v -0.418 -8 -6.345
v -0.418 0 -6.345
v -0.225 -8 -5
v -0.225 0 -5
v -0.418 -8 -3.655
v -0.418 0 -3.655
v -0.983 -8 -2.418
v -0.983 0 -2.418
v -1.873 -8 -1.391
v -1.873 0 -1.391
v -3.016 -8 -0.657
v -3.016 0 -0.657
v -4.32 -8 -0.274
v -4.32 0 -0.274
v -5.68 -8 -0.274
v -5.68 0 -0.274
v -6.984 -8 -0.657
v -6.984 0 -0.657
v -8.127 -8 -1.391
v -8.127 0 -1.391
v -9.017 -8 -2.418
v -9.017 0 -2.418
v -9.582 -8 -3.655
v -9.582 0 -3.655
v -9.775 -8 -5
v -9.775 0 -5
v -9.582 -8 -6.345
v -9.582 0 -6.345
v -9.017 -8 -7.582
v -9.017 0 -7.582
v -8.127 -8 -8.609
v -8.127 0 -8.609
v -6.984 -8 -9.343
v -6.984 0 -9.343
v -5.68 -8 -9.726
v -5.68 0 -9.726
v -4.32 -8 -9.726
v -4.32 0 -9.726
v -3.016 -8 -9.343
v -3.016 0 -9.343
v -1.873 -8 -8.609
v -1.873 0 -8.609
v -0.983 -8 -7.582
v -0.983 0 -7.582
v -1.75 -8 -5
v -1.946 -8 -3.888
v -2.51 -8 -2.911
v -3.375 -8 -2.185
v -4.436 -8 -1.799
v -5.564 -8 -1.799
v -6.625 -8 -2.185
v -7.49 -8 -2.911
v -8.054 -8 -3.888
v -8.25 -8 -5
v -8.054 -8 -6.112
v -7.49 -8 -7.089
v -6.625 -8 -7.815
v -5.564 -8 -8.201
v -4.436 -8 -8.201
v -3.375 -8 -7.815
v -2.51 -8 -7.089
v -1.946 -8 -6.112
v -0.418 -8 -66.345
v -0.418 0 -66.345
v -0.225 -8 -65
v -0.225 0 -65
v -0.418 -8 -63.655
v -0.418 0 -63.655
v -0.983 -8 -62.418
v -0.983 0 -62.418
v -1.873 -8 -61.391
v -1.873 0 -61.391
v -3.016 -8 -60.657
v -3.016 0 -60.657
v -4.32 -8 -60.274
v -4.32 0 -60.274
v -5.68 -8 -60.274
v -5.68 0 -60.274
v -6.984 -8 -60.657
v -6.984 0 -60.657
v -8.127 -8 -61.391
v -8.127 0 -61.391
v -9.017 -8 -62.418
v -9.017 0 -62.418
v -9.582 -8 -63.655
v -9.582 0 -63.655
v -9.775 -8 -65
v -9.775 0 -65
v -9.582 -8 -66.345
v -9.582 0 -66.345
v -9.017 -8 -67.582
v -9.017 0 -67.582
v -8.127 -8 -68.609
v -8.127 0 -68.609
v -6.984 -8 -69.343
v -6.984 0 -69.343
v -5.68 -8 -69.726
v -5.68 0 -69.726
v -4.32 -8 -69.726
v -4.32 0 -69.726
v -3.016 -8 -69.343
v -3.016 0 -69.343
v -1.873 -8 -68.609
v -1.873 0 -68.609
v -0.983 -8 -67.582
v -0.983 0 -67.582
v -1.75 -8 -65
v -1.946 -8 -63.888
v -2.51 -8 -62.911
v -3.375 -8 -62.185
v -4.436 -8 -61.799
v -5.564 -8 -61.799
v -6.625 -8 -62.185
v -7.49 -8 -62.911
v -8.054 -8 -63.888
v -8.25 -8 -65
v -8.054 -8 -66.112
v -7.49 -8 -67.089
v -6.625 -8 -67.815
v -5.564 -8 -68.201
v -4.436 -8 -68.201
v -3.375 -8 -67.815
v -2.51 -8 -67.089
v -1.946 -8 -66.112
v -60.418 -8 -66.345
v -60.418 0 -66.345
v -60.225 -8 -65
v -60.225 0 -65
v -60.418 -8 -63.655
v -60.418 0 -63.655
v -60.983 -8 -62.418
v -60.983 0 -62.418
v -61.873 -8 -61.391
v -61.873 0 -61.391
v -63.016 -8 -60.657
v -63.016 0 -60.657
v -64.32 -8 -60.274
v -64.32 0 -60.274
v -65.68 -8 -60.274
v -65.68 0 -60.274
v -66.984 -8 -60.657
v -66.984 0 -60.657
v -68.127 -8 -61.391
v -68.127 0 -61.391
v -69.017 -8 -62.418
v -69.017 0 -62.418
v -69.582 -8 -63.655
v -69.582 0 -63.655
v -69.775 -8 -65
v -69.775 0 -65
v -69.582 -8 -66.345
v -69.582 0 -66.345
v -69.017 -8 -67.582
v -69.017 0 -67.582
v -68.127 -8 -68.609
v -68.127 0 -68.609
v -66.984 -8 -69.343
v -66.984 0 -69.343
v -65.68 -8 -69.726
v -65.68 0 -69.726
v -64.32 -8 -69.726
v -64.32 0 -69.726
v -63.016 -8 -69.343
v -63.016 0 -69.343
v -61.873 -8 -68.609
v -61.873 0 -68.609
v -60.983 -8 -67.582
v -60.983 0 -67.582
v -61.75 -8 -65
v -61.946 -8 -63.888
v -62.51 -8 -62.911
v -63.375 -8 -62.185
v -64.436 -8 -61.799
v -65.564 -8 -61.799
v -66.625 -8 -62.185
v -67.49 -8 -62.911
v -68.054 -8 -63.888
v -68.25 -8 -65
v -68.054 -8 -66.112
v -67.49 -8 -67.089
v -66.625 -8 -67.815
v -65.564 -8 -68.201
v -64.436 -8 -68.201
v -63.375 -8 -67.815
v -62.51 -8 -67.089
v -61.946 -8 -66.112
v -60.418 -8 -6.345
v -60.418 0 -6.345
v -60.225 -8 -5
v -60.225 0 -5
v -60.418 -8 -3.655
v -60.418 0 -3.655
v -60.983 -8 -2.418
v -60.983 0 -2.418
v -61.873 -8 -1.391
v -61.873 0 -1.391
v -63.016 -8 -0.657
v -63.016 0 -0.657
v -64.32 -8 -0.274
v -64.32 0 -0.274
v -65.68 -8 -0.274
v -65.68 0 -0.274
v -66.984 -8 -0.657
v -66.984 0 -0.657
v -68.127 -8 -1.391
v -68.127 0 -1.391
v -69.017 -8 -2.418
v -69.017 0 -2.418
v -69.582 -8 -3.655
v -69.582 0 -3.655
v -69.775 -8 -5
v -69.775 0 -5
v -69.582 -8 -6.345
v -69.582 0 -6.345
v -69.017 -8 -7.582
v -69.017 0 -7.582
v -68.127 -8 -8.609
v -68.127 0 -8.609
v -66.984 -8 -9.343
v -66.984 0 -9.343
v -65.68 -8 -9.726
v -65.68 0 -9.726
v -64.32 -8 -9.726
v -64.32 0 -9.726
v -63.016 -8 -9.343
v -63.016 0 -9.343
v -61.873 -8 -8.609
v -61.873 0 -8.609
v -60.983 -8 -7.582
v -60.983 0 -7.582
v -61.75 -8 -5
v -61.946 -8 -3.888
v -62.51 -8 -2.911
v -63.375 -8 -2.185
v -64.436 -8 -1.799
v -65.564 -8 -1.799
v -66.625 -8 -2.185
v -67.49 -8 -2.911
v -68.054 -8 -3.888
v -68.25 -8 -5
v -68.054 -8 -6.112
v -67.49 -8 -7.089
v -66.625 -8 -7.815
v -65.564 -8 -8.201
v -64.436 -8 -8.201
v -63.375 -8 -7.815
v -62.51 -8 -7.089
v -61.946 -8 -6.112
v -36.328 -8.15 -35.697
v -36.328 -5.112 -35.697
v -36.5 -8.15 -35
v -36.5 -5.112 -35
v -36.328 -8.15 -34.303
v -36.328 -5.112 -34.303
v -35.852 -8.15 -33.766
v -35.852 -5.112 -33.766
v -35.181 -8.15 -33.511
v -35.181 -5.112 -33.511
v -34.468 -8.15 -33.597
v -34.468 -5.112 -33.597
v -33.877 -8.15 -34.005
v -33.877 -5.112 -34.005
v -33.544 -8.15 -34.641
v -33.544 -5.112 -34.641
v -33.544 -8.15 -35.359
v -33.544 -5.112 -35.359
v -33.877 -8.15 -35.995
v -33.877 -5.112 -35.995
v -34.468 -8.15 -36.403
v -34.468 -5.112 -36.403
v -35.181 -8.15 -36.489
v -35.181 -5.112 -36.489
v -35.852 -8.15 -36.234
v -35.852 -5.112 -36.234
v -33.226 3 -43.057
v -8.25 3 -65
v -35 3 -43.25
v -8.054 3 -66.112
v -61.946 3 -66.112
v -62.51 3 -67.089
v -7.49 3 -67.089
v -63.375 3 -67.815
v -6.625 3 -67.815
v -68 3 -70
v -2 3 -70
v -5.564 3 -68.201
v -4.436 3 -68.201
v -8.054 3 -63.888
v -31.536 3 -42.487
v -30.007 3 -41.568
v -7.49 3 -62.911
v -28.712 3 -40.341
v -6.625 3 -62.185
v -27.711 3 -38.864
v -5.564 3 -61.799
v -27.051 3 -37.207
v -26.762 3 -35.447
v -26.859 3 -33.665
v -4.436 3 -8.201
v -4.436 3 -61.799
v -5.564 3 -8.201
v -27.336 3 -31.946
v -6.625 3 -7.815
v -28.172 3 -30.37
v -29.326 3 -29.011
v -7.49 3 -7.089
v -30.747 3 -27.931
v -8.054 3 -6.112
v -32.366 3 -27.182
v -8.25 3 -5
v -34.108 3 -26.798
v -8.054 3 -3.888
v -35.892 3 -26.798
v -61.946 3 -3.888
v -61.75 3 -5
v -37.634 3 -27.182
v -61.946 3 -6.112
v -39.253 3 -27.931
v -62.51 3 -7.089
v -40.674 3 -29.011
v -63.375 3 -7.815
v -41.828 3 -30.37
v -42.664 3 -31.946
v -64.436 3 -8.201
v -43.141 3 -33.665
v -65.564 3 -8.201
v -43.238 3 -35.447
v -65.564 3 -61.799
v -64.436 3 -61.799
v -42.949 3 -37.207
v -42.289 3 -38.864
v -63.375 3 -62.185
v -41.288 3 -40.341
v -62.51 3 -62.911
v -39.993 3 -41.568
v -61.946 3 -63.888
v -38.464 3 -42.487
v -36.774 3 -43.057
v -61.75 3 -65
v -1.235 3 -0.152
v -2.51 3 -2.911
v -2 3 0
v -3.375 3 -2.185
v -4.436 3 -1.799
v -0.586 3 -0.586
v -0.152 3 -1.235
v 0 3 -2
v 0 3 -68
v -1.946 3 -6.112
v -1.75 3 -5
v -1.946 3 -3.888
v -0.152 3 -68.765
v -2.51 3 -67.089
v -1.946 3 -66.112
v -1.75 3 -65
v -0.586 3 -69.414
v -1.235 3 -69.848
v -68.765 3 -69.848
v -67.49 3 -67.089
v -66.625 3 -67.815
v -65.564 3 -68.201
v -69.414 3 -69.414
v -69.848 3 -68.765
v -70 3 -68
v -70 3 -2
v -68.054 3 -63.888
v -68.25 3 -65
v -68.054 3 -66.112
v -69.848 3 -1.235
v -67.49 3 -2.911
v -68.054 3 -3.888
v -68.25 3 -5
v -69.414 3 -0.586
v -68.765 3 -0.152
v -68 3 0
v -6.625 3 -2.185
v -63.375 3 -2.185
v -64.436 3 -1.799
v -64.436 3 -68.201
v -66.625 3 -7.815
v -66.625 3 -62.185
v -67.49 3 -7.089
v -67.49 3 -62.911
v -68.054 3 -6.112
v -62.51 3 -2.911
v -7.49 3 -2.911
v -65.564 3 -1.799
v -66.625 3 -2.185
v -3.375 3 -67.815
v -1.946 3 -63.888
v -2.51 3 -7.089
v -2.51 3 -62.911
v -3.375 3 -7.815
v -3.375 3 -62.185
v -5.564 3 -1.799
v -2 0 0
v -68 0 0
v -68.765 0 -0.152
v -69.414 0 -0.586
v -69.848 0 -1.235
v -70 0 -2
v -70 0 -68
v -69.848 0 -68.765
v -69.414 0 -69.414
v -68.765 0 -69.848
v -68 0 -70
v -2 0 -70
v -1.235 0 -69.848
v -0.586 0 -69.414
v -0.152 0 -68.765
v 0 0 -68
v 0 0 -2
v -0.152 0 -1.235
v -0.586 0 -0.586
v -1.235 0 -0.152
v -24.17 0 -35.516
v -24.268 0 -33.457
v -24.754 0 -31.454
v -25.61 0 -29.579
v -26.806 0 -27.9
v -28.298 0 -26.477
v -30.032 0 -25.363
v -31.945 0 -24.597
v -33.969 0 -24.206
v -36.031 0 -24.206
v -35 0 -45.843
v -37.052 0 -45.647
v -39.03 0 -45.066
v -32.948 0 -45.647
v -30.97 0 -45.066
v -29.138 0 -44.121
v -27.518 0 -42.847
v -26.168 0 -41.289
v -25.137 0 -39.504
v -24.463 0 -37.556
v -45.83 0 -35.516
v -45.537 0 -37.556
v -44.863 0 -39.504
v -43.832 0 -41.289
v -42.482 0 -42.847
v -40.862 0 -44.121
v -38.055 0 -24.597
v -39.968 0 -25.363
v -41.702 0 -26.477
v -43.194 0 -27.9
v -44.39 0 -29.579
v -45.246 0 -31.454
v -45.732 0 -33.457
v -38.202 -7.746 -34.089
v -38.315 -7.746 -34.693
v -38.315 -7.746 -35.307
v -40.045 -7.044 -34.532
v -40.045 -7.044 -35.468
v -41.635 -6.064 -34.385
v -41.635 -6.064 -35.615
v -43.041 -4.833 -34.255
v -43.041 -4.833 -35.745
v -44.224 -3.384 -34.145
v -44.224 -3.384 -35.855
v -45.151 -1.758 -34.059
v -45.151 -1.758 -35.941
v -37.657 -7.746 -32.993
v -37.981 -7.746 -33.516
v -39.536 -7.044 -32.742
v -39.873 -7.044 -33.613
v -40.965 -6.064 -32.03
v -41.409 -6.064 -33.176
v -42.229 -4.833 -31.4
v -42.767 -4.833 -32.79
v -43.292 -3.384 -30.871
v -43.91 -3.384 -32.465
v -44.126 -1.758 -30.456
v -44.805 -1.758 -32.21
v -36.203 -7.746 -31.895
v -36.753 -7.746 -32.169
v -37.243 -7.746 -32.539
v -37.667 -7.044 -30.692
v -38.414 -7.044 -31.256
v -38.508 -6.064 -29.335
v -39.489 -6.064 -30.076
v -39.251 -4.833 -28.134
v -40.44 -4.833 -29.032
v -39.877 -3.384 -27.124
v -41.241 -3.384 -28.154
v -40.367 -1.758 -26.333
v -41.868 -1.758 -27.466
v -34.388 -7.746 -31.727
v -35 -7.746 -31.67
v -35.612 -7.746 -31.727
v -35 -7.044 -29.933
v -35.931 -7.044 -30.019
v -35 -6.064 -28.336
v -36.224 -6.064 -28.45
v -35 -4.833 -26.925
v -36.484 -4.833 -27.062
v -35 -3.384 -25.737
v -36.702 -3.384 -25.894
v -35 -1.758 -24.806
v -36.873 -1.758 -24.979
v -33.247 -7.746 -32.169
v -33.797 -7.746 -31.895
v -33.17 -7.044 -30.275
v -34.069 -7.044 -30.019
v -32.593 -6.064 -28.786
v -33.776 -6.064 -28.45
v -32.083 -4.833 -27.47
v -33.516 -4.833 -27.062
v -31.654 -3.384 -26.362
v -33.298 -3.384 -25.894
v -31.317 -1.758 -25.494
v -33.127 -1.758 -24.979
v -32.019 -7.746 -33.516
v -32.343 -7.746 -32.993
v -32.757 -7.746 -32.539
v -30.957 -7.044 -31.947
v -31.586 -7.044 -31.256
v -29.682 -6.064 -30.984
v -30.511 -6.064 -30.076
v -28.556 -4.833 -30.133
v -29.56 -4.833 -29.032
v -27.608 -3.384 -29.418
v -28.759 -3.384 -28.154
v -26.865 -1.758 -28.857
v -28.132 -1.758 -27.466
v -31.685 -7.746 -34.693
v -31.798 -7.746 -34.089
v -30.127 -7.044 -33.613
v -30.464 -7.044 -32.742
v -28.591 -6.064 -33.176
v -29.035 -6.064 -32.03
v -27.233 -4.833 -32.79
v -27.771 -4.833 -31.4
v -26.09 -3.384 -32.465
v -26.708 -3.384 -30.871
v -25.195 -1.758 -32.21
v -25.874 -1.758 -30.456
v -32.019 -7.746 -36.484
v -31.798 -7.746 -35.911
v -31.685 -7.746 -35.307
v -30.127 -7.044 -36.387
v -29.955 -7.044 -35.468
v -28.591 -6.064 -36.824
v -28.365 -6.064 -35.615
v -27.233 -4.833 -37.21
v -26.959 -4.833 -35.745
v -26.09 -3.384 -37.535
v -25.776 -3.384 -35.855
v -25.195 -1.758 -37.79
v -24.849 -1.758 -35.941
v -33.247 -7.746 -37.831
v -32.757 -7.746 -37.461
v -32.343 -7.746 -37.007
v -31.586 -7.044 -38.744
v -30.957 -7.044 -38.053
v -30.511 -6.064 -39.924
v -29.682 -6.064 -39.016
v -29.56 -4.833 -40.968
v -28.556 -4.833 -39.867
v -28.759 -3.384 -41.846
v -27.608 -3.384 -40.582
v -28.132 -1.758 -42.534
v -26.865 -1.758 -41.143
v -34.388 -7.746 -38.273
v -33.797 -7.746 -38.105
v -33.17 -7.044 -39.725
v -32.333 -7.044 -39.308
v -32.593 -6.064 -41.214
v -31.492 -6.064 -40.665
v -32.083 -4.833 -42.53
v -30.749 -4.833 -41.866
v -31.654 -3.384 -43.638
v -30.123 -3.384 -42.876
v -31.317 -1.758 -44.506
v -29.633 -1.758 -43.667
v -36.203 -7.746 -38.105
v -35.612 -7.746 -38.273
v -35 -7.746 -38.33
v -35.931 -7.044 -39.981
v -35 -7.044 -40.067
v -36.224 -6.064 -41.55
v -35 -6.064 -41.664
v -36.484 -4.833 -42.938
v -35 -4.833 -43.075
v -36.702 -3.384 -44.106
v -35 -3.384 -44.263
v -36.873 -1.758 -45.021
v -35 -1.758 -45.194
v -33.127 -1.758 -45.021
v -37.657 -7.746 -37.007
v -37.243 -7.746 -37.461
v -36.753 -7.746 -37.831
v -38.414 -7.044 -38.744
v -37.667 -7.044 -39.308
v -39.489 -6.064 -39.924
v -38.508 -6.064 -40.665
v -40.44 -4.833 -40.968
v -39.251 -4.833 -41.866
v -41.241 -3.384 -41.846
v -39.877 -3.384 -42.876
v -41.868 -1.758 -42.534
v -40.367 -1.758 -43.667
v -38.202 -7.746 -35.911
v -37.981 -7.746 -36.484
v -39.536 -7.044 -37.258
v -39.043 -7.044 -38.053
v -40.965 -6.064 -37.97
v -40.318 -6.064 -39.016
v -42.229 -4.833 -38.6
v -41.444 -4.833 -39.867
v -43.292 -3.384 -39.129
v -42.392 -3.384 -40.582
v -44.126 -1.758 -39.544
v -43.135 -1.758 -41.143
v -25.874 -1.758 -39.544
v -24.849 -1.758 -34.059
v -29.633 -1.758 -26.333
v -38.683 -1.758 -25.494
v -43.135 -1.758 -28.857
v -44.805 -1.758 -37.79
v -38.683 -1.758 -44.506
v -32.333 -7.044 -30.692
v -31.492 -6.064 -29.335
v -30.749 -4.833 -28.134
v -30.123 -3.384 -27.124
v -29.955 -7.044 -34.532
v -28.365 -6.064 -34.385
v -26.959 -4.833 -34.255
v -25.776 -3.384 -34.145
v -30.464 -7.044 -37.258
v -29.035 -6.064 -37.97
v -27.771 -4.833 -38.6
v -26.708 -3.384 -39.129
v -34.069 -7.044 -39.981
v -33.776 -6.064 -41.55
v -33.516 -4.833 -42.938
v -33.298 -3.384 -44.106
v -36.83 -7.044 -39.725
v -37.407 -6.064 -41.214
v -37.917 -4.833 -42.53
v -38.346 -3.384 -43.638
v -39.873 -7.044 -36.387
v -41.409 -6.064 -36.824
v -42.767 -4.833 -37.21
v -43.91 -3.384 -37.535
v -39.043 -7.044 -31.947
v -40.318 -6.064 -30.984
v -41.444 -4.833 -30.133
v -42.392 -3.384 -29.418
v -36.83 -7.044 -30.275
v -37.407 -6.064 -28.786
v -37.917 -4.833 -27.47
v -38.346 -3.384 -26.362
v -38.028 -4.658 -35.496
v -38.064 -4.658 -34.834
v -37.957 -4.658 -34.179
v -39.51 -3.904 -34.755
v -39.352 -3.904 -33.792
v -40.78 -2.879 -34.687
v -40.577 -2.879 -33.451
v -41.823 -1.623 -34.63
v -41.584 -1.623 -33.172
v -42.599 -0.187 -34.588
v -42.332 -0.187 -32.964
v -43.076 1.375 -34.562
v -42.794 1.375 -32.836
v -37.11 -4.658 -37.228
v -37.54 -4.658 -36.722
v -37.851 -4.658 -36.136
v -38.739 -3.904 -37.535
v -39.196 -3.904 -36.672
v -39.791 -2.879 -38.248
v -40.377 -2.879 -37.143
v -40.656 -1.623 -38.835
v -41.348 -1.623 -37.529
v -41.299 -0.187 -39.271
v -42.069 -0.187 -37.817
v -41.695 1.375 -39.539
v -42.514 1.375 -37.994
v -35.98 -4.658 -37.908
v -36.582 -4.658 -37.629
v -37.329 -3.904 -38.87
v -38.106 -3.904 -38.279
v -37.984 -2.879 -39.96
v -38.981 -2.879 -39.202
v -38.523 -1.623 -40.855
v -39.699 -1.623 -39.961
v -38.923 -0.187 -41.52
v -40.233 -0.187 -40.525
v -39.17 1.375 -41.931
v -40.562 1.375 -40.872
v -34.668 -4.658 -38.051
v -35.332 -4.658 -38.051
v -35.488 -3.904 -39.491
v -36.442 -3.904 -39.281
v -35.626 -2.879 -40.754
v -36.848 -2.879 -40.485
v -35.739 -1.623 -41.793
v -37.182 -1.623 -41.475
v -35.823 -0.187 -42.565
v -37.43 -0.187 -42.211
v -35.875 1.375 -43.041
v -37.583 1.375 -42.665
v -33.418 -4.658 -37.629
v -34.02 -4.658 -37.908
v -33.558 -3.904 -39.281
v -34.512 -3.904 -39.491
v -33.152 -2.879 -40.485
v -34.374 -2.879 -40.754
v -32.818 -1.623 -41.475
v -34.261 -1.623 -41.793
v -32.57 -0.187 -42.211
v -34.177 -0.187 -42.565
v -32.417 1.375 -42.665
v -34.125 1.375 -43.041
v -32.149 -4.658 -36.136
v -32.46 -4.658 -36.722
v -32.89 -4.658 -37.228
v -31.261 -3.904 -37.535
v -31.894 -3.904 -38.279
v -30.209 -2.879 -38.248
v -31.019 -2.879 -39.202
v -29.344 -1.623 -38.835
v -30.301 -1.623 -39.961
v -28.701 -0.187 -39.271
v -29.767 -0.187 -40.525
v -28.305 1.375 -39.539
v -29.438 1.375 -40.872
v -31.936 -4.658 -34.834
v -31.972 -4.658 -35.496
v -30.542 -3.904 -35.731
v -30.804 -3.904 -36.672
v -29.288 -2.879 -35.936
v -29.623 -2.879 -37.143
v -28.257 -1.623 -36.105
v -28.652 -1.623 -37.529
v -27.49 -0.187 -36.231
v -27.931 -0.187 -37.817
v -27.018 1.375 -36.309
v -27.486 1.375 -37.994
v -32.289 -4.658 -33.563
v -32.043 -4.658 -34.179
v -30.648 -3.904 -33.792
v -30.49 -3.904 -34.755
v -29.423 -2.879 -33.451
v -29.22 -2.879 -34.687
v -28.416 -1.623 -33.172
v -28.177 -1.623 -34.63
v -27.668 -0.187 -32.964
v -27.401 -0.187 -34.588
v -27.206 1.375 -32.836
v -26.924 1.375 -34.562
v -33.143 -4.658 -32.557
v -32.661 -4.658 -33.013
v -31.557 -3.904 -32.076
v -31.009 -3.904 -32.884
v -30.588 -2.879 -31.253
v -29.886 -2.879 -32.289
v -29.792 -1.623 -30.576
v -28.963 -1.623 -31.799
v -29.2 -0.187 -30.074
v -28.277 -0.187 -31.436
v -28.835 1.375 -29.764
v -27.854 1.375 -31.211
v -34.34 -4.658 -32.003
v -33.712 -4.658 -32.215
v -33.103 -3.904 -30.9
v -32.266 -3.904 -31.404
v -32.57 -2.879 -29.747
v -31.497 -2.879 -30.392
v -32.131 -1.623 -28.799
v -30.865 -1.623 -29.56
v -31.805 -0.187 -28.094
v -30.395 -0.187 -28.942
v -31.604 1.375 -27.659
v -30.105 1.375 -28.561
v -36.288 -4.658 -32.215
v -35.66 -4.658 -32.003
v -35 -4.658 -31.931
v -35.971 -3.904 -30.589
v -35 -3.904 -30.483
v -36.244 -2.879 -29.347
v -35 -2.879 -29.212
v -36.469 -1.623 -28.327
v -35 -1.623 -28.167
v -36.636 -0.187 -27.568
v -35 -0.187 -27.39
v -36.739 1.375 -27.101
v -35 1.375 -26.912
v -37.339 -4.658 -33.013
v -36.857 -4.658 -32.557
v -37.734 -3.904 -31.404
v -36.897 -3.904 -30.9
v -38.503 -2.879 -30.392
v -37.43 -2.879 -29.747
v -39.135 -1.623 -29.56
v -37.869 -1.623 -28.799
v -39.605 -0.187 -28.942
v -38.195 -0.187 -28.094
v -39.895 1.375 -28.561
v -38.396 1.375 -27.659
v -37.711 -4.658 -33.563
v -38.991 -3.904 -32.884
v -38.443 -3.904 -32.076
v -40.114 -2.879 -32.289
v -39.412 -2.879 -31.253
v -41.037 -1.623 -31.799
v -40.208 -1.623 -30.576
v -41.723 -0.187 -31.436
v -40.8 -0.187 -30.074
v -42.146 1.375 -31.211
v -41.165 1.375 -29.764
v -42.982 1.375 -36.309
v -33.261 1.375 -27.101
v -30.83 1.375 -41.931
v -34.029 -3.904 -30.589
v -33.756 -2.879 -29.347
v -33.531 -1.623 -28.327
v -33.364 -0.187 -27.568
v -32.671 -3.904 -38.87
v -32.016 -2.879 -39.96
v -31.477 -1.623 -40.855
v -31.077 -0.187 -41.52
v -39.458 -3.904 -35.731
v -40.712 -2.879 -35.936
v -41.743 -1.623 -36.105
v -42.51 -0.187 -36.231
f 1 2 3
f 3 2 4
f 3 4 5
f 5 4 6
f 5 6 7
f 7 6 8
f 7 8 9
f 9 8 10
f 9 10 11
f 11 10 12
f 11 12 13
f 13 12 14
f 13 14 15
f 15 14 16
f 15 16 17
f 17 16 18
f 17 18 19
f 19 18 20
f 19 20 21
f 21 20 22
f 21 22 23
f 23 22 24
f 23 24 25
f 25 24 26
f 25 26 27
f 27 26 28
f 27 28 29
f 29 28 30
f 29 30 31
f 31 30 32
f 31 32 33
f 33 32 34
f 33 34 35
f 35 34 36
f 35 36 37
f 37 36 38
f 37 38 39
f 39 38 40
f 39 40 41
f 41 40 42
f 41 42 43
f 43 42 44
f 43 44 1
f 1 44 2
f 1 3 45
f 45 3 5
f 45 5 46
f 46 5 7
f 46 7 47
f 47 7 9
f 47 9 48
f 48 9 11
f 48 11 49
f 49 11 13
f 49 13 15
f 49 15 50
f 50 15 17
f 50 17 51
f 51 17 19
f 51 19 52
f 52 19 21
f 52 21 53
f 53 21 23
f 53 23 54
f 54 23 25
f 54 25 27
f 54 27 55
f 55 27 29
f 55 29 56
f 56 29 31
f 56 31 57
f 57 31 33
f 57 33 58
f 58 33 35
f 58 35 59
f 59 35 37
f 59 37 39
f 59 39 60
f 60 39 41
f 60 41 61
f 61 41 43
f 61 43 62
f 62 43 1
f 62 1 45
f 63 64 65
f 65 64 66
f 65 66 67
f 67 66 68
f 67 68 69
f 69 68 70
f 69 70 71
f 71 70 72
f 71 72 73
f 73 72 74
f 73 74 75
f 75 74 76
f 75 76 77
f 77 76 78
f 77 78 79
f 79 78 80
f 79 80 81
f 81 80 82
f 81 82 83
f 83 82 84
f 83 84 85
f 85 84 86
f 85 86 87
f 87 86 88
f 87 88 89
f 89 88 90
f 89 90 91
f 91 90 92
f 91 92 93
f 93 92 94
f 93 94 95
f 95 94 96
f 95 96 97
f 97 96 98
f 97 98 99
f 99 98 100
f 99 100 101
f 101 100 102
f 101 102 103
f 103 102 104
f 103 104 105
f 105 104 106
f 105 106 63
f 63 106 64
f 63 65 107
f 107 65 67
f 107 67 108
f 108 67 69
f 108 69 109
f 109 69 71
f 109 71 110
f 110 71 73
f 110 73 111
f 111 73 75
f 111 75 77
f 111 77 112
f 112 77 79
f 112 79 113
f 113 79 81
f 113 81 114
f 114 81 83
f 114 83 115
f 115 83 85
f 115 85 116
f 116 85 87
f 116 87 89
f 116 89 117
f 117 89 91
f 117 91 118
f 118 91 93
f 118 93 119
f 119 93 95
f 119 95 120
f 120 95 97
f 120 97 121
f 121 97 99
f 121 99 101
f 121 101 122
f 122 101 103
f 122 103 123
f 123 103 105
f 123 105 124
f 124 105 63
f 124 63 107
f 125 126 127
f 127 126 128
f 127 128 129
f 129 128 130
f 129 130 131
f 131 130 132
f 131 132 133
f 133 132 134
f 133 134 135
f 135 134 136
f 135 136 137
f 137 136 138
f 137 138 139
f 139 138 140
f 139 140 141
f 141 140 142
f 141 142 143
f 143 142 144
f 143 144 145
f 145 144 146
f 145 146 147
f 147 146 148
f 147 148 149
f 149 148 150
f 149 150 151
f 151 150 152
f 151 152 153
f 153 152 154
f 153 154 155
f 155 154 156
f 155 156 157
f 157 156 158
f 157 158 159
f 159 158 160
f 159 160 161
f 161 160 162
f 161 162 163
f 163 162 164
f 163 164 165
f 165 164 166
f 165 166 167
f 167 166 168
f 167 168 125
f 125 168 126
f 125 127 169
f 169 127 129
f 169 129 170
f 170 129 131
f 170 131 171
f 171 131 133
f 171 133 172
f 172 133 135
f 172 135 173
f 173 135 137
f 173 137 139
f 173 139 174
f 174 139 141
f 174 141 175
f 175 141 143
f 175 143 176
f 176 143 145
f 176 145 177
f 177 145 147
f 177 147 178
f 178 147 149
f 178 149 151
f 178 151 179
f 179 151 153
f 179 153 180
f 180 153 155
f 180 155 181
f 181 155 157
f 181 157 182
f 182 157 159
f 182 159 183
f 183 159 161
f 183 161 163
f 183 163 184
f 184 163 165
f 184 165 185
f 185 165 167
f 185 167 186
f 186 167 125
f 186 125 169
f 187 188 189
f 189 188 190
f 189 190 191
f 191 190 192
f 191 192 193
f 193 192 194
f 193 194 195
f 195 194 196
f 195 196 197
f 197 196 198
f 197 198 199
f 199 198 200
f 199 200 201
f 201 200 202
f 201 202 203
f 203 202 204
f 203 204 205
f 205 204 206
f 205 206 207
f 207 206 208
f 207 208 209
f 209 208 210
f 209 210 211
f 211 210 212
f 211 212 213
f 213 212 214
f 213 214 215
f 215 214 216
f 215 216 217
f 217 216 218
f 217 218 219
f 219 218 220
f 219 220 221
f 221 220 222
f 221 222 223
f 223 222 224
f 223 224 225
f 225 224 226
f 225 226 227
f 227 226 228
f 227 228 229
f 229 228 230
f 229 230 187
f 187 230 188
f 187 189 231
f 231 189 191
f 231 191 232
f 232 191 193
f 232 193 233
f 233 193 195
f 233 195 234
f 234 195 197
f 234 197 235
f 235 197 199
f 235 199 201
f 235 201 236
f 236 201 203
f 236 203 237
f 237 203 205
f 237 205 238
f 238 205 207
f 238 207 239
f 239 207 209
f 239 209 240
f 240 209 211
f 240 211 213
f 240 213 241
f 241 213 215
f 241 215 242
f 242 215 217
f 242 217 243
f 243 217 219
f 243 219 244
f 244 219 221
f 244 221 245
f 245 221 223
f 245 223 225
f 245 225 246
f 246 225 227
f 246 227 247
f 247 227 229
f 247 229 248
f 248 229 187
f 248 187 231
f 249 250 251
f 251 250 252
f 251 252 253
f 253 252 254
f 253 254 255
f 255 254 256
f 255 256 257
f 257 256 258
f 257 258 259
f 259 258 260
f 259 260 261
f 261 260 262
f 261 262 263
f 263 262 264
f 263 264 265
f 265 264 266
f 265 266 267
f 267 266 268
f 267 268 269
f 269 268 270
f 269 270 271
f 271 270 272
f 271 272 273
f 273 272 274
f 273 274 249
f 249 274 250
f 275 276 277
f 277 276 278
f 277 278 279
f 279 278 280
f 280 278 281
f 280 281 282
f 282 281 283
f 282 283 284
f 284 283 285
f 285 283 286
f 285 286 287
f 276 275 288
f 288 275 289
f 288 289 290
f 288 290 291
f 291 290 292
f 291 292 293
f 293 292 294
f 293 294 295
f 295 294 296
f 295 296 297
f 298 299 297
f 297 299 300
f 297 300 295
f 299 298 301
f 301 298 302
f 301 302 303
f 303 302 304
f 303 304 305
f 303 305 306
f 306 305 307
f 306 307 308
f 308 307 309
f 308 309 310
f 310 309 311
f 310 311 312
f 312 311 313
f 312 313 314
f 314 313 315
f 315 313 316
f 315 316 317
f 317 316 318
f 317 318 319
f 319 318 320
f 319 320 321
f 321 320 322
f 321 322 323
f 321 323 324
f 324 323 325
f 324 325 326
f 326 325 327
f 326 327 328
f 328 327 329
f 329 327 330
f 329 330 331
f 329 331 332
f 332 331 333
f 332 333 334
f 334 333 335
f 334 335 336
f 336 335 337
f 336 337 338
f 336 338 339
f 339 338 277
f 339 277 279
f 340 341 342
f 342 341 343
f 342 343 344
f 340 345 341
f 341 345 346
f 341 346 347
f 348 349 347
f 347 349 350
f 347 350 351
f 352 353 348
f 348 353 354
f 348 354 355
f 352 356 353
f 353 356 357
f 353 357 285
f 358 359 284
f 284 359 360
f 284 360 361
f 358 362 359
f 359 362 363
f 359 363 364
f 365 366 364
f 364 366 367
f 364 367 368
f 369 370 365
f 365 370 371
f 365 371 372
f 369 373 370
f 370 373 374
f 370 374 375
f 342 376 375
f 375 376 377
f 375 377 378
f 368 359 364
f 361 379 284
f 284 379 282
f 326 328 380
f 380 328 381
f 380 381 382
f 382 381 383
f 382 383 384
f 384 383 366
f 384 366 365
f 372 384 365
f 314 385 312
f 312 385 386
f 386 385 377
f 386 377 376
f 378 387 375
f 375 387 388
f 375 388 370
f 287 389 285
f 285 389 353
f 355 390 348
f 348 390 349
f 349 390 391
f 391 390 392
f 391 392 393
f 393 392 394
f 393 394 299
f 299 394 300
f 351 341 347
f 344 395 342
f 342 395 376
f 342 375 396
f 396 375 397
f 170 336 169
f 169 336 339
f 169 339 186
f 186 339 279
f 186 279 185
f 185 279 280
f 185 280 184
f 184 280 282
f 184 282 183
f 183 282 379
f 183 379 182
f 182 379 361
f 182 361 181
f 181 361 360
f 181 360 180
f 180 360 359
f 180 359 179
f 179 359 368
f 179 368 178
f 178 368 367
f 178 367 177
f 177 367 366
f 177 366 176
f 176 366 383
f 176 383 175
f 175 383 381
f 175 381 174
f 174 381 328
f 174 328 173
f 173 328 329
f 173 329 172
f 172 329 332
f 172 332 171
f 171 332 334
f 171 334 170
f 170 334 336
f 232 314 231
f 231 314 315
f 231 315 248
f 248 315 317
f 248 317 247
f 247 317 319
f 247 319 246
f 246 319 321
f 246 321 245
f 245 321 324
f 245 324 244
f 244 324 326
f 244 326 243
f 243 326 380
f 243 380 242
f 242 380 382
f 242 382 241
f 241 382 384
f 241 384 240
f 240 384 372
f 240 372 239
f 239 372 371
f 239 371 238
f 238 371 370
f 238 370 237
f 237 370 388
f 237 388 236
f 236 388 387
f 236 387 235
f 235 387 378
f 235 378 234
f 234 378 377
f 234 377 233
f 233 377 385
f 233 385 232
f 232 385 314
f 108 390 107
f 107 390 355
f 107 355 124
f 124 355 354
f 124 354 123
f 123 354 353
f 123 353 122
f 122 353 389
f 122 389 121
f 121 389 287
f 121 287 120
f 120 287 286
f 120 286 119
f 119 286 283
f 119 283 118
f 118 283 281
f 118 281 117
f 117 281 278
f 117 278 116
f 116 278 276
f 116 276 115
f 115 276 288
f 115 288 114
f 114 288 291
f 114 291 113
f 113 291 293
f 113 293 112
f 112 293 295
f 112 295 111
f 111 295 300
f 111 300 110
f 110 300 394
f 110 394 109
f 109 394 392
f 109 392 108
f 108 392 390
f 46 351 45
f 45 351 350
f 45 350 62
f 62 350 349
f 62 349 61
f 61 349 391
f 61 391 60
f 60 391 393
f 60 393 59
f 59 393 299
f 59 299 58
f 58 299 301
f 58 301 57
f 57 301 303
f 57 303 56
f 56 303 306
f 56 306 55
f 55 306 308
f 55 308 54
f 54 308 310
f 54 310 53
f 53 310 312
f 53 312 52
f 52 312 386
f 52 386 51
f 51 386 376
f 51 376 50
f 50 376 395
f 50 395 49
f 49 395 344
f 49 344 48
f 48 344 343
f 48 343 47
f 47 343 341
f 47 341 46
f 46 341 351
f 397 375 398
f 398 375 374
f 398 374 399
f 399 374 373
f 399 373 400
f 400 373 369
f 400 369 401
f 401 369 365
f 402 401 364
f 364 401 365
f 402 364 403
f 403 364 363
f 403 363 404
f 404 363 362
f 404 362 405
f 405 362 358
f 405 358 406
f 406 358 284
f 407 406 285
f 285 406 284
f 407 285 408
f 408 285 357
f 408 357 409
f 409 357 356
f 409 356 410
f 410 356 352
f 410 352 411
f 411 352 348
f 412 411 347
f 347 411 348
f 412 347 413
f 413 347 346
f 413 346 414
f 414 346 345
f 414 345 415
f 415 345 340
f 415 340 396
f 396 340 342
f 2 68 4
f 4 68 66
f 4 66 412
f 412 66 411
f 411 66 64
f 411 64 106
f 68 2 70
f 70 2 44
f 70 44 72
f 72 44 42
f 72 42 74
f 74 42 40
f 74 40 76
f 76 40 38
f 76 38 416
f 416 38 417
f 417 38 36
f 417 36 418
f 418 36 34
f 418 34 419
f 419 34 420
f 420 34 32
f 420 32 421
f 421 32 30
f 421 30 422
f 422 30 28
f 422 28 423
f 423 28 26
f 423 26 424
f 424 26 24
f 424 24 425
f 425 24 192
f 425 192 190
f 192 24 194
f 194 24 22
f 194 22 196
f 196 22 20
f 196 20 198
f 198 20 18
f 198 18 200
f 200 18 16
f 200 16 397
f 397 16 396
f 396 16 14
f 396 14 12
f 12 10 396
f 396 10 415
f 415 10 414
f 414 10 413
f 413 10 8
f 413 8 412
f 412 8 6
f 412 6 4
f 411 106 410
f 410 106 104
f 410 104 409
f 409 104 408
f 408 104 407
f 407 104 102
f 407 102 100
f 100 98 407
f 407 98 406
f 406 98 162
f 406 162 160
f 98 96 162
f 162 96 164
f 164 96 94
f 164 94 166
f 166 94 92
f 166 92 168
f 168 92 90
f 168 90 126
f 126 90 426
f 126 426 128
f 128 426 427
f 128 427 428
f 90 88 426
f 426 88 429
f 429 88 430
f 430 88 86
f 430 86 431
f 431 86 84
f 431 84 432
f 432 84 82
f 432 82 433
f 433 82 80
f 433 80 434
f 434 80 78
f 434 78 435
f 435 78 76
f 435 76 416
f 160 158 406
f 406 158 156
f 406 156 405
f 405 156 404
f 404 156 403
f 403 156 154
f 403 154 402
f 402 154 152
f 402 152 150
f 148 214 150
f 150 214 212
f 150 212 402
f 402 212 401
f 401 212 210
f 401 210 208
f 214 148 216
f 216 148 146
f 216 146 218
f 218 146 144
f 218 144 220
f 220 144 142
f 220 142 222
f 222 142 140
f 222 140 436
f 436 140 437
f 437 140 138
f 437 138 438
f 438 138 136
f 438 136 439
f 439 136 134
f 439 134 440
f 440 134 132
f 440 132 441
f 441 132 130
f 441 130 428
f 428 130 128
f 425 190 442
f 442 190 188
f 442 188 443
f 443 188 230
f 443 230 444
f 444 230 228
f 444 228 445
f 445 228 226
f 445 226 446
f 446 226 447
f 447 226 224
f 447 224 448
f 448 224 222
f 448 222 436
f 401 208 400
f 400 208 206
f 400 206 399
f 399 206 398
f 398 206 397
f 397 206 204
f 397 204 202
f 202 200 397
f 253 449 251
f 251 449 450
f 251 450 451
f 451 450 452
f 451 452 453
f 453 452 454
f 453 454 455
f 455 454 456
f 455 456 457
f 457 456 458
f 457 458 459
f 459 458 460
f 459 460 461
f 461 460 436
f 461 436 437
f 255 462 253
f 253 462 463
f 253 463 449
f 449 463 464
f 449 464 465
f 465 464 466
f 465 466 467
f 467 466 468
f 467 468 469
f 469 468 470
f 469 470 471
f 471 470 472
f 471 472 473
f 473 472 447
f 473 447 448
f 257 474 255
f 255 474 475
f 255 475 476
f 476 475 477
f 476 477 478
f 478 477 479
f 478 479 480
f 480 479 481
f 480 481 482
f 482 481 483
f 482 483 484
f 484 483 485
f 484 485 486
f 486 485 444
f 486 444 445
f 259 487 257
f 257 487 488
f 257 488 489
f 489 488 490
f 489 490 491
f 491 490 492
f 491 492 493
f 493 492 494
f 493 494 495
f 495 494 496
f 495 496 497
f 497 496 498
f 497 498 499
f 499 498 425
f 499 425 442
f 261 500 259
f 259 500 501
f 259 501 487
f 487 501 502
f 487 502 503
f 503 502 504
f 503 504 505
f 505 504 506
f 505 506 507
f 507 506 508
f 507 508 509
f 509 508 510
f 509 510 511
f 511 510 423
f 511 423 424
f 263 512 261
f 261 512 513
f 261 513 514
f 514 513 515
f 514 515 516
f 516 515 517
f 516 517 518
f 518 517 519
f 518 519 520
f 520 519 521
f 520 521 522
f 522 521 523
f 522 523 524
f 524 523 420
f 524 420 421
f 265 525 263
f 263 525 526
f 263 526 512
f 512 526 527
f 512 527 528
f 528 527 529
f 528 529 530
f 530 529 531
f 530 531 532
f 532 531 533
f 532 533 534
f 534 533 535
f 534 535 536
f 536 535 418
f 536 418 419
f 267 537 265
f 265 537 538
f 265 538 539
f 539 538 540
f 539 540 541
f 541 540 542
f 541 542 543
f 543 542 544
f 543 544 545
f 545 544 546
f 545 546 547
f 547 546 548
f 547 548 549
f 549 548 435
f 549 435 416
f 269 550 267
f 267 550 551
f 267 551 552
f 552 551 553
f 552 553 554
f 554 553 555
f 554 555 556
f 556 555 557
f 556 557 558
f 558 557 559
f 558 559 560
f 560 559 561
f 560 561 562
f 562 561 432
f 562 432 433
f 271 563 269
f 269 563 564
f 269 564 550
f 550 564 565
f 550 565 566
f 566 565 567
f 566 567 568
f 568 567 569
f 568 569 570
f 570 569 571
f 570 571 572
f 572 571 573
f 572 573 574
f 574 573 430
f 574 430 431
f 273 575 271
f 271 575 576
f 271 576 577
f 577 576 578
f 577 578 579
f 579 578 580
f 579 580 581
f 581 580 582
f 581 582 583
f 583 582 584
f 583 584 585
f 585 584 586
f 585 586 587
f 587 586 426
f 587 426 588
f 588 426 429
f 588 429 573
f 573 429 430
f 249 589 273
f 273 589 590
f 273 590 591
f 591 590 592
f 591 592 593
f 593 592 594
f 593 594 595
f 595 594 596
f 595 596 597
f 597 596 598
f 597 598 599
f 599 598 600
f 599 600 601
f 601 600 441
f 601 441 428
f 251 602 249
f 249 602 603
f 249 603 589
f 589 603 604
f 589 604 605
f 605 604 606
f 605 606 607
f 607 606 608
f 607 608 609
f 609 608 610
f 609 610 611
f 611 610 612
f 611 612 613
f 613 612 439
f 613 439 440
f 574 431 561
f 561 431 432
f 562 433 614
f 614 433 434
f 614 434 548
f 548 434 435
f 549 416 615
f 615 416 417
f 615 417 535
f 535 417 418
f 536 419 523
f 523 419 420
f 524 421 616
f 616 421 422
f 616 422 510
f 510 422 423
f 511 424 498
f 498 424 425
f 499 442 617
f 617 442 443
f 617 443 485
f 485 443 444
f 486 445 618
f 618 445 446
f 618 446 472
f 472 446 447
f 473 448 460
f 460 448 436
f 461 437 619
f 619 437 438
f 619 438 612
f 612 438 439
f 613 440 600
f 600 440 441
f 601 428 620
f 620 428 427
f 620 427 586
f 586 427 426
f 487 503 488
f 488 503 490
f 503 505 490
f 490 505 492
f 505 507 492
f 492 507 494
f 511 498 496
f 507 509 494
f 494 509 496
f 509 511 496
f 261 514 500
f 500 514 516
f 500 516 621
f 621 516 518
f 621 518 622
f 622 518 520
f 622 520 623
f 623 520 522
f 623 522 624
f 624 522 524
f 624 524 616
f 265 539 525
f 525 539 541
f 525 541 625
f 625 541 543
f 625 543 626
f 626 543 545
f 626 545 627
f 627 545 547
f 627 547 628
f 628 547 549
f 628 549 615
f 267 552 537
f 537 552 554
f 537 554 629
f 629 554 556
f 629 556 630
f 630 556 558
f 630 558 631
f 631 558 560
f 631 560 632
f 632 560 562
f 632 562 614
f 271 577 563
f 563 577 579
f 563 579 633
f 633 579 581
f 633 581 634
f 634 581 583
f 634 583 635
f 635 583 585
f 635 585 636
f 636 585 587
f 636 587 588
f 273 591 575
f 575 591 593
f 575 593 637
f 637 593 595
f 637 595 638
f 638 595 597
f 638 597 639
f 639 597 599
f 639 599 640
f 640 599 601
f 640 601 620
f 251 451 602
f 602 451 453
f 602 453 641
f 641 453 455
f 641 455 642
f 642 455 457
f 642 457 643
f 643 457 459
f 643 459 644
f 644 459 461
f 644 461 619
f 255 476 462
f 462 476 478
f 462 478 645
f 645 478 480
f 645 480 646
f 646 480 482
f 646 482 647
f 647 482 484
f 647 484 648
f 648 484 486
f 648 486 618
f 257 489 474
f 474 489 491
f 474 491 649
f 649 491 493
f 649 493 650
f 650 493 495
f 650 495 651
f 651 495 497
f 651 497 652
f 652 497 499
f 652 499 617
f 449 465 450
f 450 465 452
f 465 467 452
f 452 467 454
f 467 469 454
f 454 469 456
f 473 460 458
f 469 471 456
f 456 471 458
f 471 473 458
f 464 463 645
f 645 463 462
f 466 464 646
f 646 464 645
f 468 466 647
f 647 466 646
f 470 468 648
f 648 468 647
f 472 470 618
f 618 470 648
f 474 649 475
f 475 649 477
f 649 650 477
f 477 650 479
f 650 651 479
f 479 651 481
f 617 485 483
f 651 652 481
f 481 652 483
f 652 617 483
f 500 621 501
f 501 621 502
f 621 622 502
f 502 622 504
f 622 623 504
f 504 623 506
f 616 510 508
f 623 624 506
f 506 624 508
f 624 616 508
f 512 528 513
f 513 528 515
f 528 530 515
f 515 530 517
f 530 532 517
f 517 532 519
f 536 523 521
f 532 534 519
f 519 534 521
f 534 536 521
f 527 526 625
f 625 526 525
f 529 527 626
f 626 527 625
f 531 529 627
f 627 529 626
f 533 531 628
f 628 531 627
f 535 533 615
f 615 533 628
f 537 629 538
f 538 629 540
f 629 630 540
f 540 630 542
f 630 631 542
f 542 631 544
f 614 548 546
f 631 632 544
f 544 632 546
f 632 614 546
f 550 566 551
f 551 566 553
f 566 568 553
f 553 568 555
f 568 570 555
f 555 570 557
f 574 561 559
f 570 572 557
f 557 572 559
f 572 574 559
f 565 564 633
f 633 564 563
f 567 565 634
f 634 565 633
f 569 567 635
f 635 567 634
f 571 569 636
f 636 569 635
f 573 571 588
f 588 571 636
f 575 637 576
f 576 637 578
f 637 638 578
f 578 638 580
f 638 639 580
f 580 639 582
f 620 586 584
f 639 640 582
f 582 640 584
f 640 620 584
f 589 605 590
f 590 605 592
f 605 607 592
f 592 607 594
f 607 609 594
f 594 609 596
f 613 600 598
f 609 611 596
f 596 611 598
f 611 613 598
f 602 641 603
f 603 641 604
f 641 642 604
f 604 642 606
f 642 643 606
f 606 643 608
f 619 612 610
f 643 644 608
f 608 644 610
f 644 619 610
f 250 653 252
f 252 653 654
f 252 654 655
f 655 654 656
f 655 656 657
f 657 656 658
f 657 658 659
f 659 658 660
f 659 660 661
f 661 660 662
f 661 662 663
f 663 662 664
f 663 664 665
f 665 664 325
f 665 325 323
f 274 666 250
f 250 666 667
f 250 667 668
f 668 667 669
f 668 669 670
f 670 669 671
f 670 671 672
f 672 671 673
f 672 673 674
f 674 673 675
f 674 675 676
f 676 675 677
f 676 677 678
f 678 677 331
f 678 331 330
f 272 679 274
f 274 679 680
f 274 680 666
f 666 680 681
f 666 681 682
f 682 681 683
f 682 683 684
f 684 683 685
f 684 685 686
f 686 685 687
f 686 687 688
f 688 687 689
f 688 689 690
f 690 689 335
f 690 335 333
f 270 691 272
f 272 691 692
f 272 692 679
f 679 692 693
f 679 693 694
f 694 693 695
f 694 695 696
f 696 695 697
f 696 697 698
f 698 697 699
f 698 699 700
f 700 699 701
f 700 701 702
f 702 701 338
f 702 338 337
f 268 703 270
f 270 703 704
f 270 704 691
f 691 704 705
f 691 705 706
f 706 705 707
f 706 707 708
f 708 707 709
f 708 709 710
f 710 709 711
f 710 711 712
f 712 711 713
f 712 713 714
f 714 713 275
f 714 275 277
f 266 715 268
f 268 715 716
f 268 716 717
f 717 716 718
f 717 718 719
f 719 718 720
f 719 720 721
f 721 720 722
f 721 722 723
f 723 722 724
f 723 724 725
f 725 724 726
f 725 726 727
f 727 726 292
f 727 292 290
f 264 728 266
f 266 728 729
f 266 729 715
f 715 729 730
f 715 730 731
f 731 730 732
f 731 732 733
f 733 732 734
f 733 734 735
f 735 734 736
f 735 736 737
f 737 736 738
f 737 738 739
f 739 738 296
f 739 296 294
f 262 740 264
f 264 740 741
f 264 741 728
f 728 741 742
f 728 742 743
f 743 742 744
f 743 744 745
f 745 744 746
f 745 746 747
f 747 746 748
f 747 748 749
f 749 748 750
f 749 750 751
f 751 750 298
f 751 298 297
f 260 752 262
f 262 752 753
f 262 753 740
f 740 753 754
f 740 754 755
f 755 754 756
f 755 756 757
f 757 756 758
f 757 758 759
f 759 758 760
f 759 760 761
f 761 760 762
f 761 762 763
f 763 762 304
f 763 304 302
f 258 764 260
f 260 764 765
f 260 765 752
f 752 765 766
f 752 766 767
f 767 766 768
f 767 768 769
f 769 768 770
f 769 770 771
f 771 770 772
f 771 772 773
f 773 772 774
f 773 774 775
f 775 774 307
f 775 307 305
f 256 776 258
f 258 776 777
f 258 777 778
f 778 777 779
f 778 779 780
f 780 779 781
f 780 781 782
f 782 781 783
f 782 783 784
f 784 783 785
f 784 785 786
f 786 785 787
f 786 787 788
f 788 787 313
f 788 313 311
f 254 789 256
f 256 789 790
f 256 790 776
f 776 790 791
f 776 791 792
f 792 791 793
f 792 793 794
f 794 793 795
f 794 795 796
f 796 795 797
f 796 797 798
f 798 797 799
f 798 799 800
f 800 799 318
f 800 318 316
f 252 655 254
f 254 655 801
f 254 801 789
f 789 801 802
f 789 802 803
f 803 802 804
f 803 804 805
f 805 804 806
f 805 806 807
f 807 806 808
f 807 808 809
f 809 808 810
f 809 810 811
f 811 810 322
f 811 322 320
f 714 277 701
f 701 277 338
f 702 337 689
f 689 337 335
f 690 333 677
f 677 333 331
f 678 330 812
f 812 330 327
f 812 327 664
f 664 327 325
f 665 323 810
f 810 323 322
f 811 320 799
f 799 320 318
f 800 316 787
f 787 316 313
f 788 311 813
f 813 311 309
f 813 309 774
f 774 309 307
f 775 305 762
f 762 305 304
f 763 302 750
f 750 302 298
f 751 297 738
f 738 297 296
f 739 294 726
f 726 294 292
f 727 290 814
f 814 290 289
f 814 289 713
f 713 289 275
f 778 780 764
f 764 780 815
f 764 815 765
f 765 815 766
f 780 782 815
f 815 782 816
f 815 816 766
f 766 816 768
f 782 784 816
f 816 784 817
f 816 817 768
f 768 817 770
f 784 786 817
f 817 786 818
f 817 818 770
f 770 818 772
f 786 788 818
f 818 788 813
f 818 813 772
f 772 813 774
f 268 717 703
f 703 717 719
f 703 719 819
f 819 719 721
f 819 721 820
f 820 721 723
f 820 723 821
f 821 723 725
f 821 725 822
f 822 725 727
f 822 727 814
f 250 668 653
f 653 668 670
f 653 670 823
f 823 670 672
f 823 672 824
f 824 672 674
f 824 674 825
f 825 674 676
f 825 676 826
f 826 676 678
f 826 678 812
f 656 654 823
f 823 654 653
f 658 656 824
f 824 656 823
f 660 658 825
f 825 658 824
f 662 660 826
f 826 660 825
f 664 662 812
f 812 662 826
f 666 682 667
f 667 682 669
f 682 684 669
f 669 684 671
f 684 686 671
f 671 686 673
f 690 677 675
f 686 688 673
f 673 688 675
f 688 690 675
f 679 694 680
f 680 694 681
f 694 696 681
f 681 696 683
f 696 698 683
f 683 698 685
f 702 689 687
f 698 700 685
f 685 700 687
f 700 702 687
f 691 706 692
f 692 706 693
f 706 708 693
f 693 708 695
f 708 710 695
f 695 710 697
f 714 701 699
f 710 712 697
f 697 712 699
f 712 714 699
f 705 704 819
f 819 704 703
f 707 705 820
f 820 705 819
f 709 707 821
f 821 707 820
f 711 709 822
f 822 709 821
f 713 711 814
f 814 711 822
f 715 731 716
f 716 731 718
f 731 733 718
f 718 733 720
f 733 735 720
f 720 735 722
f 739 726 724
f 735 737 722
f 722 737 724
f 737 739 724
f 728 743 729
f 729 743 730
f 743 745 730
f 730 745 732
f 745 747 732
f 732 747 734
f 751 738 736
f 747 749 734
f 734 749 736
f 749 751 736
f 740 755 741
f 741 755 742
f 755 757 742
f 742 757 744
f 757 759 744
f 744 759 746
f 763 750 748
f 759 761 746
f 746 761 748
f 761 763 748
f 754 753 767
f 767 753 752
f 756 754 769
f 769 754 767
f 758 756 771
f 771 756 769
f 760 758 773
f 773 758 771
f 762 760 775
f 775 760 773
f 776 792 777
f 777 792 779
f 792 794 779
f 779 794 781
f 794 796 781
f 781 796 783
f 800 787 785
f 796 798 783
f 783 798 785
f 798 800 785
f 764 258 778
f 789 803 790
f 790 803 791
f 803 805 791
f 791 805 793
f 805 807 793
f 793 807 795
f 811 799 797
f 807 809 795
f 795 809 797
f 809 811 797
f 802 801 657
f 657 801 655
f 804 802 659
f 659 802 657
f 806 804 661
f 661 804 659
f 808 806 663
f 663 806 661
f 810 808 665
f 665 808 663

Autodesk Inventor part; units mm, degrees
ref_plane "YZ Plane" through (0, 0, 0) normal (1, 0, 0) x (0, 1, 0)
ref_plane "XZ Plane" through (0, 0, 0) normal (0, 1, 0) x (-1, 0, 0)
ref_plane "XY Plane" through (0, 0, 0) normal (0, 0, 1) x (1, 0, 0)
sketch "Sketch1" plane through (0, 0, 0) normal (0, 1, 0) x (-1, 0, 0)
  line L0 (0, 0) -> (70, 0)
  line L1 (70, 0) -> (70, -70)
  line L2 (70, -70) -> (0, -70)
  line L3 (0, -70) -> (0, 0)
  circle A0 centre (5, -5) radius 3.25
  circle A1 centre (5, -65) radius 3.25
  circle A2 centre (65, -5) radius 3.25
  circle A3 centre (65, -65) radius 3.25
  dimension "d0" = 70
  dimension "d1" = 6.5
  dimension "d4" = 60
  dimension "d7" = 60
  dimension "d10" = 5
  dimension "d11" = 5
extrude "Extrusion1" add sketch "Sketch1" along normal blind 3
fillet "Fillet1" radius 2 4 edges at (-70, 1.5, 0) (-70, 1.5, -70) (0, 1.5, -70) (0, 1.5, 0)
sketch "Sketch2" plane through (0, 3, 0) normal (0, 1, 0) x (1, 0, 0)
  line L0 (-70, 68) -> (-70, 2) construction
  line L1 (-70, 35) -> (0, 35) construction
  line L2 (0, 2) -> (0, 68) construction
  line L3 (-68, 0) -> (-2, 0) construction
  line L4 (-35, 0) -> (-35, 70) construction
  line L5 (-2, 70) -> (-68, 70) construction
  arc A0 (-35, 43.25) -> (-35, 26.75) centre (-35, 35) ccw
  arc A1 (-35, 46.25) -> (-35, 23.75) centre (-35, 35) ccw
  line L6 (-35, 23.75) -> (-35, 26.75)
  line L7 (-35, 43.25) -> (-35, 46.25)
  point P0 (0, 0)
  dimension "d17" = 8.25
  dimension "d19" = 3
revolve "Revolution1" add sketch "Sketch2" angle 180 about axis through (-35, 3, 0) along (0, 0, 1)
sketch "Sketch3" plane through (0, 3, 0) normal (0, 1, 0) x (1, 0, 0)
  circle A0 centre (-35, 35) radius 8.25
  circle A1 centre (-35, 35) radius 7.6852 projected
  line L0 (-35, 43.25) -> (-35, 26.75)
  point P0 (0, 0)
  dimension "d40" = 16.5
revolve "Revolution2" cut sketch "Sketch3" angle 180 about axis through (-35, 3, -43.25) along (0, 0, 1) picked at (-42.6965, 37.215) picked at (-37.7213, 33.6192) contours L0 A1 A0 | L0 A1
sketch "Sketch4" plane through (0, 3, 0) normal (0, 1, 0) x (1, 0, 0)
  circle A0 centre (-35, 35) radius 7.6852 projected
  point P0 (0, 0)
hole "Hole1" at (-35, 3, -35) direction (0, -1, 0) diameter 3 end through all
sketch "Sketch5" plane through (0, 0, 0) normal (0, -1, 0) x (1, 0, 0)
  circle A0 centre (-5, -5) radius 3.25 projected
  circle A1 centre (-5, -5) radius 4.775
  circle A2 centre (-5, -5) radius 3.25
  line L0 (-68, 0) -> (-2, 0) projected
  line L1 (0, -2) -> (0, -68) projected
  circle A3 centre (-65, -5) radius 4.775
  circle A4 centre (-65, -5) radius 3.25
  circle A5 centre (-5, -65) radius 4.775
  circle A6 centre (-5, -65) radius 3.25
  circle A7 centre (-65, -65) radius 4.775
  circle A8 centre (-65, -65) radius 3.25
  point P0 (0, 0)
  dimension "d29" = 9.55
  dimension "d32" = 60
  dimension "d35" = 60
extrude "Extrusion2" add sketch "Sketch5" along normal blind 8
equation "\"d0\" = cradle_width"
equation "\"d1\" = rod_diameter + rod_free_tolerance"
equation "\"d4\" = rod_dist"
equation "\"d7\" = rod_dist"
equation "\"d10\" = 0.5 * cradle_width - 0.5 * rod_dist"
equation "\"d11\" = 0.5 * cradle_width - 0.5 * rod_dist"
equation "\"d12\" = cradle_holder_thickness"
equation "\"d17\" = 0.5 * tube_diameter"
equation "\"d19\" = cradle_holder_thickness"
equation "\"d40\" = tube_diameter"
equation "\"d22\" = needle_hole_diameter"
equation "\"d29\" = post_diameter - post_wall_diameter"
equation "\"d32\" = rod_dist"
equation "\"d35\" = rod_dist"
equation "\"d38\" = cradle_holder_peg_depth"
equation "\"cradle_width\" = 70"
equation "\"cradle_holder_peg_depth\" = 8"
equation "\"tube_diameter\" = 16.5"
equation "\"rod_dist\" = 60"
equation "\"rod_diameter\" = 6"
equation "\"rod_free_tolerance\" = 0.5"
equation "\"cradle_holder_thickness\" = 3"
equation "\"needle_hole_diameter\" = 3"
equation "\"post_diameter\" = 10.2"
equation "\"post_wall_diameter\" = 0.65"
properties part number "cradle_holder"
